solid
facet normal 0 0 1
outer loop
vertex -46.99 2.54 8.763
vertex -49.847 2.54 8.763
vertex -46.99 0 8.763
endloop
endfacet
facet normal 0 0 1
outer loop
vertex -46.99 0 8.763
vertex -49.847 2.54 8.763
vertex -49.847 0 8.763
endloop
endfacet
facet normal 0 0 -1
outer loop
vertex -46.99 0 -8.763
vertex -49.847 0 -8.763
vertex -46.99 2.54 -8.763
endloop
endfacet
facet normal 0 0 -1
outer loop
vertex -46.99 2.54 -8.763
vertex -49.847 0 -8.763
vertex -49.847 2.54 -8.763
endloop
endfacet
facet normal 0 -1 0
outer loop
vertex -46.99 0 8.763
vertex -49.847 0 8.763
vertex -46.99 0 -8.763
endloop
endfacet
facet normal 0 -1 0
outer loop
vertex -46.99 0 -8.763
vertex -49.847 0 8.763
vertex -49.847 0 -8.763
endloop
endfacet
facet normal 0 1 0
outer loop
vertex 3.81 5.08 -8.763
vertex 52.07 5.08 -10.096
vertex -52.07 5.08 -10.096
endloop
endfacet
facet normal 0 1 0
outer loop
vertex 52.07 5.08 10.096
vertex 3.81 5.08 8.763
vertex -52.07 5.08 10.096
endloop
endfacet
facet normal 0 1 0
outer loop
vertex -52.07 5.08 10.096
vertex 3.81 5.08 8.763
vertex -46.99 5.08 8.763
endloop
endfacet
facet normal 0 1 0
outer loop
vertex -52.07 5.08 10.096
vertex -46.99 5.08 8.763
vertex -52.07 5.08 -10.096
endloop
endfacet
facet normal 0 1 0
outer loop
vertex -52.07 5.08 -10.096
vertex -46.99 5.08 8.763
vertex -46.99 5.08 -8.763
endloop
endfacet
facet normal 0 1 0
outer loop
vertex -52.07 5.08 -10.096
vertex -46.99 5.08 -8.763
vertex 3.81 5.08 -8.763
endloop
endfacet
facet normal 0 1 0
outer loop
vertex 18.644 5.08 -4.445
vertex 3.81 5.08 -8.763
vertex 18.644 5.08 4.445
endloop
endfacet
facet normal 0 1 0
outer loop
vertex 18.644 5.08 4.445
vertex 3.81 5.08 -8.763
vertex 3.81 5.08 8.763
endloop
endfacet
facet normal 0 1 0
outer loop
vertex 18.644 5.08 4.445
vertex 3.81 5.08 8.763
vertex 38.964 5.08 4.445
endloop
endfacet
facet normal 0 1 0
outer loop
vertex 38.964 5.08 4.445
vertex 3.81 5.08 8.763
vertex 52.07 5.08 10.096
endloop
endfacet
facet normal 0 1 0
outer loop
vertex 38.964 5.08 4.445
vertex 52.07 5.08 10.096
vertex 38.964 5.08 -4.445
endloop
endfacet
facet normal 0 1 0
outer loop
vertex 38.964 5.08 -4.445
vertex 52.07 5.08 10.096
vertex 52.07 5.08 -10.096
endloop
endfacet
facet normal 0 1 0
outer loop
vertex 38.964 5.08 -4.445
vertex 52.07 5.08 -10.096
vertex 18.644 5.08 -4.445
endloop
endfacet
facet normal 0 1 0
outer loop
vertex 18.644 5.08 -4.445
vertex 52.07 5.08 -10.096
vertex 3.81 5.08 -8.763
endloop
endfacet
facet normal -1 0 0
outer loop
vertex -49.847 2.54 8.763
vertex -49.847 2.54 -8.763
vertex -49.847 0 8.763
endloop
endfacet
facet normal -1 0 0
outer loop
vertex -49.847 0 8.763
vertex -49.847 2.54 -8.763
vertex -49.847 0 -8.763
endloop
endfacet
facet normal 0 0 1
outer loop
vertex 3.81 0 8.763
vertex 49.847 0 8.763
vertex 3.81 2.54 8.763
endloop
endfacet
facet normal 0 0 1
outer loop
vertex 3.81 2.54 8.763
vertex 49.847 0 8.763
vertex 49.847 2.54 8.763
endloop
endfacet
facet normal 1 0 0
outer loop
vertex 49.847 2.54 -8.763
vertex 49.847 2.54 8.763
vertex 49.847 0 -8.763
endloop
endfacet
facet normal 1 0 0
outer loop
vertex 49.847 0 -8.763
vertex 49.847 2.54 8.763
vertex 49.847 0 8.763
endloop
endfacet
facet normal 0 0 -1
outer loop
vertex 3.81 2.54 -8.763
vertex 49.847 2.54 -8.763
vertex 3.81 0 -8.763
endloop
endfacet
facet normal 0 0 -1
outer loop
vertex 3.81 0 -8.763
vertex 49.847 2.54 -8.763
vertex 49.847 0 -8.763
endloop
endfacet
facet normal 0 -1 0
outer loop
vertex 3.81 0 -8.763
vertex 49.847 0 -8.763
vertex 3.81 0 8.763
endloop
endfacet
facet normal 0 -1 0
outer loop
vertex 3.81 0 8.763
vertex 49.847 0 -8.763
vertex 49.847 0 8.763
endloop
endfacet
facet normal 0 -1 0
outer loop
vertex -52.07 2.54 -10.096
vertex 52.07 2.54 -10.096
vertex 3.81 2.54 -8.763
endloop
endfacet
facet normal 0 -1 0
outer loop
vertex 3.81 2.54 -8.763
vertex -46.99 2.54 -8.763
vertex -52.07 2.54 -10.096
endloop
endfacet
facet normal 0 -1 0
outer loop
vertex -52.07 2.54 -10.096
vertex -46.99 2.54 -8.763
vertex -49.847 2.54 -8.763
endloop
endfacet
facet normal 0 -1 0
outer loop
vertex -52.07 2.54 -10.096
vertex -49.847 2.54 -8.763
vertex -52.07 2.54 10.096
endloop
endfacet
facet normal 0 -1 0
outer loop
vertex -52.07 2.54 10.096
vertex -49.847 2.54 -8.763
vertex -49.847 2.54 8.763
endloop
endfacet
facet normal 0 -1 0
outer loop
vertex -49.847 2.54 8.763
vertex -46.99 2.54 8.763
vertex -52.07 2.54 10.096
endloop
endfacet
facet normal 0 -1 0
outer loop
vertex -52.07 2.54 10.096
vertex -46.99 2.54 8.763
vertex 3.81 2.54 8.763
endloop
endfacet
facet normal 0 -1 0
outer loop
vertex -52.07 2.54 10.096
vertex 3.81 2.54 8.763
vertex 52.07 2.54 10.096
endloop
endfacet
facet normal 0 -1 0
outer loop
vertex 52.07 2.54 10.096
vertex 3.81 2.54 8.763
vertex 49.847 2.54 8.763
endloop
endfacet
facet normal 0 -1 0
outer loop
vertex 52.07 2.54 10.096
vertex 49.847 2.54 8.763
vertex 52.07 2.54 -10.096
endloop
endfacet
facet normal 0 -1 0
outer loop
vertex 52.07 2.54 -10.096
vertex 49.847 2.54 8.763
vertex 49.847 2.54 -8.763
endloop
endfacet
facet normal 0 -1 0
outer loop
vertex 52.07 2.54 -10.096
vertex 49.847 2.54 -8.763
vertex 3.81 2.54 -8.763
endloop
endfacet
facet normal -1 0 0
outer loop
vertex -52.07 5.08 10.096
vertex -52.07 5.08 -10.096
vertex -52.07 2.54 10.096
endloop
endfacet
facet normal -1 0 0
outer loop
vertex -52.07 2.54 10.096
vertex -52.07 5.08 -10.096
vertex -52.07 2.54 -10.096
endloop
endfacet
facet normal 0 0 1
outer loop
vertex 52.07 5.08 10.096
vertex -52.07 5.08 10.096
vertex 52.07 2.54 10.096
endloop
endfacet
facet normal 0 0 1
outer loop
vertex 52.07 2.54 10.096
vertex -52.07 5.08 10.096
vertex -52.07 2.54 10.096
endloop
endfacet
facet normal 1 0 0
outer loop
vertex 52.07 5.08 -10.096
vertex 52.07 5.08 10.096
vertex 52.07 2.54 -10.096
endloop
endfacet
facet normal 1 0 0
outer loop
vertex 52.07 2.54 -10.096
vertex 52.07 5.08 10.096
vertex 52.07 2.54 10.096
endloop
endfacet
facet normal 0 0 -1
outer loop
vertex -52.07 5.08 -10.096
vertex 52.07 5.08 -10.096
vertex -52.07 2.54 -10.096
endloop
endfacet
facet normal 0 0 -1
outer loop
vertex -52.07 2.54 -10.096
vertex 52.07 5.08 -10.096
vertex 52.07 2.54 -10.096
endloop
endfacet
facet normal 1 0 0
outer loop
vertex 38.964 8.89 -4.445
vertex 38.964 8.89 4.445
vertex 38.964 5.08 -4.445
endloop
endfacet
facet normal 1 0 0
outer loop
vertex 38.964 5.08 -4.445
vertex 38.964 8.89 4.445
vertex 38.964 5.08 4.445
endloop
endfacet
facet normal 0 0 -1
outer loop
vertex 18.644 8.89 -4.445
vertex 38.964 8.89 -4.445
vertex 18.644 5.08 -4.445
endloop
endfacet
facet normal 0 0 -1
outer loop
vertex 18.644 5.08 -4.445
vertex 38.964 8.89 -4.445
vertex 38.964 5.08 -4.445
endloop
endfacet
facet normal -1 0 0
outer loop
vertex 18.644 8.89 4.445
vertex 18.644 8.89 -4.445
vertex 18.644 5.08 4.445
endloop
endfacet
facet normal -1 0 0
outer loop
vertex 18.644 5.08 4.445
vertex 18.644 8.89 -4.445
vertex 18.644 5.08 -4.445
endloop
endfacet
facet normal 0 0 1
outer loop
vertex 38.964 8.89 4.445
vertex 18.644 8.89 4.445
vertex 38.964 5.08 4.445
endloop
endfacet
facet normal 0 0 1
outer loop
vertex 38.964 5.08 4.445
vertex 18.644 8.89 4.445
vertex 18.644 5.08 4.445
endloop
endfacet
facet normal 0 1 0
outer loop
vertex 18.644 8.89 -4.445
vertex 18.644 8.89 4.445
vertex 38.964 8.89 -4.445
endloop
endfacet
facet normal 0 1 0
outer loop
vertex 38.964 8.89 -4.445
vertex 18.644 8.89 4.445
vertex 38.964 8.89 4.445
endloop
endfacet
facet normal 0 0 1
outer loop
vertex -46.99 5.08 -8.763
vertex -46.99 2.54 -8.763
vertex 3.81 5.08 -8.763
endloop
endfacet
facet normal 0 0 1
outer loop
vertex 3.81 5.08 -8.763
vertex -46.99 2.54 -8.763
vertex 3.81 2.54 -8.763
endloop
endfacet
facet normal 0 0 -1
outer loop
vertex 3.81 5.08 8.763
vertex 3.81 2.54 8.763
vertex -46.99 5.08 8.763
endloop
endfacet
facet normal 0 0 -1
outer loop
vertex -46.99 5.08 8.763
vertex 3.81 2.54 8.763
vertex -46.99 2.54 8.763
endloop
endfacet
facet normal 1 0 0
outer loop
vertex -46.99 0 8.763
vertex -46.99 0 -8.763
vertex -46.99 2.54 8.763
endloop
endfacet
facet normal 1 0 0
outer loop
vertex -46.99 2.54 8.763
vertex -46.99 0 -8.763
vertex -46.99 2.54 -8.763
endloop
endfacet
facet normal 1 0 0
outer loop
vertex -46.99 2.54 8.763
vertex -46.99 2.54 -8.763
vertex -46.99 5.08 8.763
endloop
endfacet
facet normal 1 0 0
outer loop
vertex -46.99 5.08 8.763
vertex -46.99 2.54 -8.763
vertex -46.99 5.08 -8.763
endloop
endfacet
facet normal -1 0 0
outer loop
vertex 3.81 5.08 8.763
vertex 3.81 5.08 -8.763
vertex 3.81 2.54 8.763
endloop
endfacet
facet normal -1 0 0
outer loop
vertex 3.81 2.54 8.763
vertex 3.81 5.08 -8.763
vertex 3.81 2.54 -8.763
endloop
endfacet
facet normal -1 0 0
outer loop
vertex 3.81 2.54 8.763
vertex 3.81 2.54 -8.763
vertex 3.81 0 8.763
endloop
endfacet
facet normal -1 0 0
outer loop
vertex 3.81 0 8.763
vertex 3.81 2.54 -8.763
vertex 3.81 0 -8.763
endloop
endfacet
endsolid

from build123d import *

# Parameters (mm, degrees)
SKETCH1_W           = 99.695
SKETCH1_H           = 17.526
BOSS_EXTRUDE1_DEPTH = 2.54
SKETCH2_W           = 104.14
SKETCH2_H           = 20.193
BOSS_EXTRUDE2_DEPTH = 2.54
SKETCH4_W           = 20.32
SKETCH4_H           = 8.89
BOSS_EXTRUDE3_DEPTH = 3.81
SKETCH5_W           = 50.8
SKETCH5_H           = 17.526
CUT_EXTRUDE1_DEPTH  = 54.282554483


with BuildPart() as part:
    # Sketch1 → Boss-Extrude1 (new body)
    with BuildSketch(Plane(origin=(0, 0, 0), x_dir=(1, 0, 0), z_dir=(0, 1, 0))):
        Rectangle(SKETCH1_W, SKETCH1_H)
    extrude(amount=BOSS_EXTRUDE1_DEPTH)

    # Sketch2 → Boss-Extrude2 (add)
    with BuildSketch(Plane(origin=(0, 2.54, 0), x_dir=(1, 0, 0), z_dir=(0, 1, 0))):
        Rectangle(SKETCH2_W, SKETCH2_H)
    extrude(amount=BOSS_EXTRUDE2_DEPTH)

    # Sketch4 → Boss-Extrude3 (add)
    with BuildSketch(Plane(origin=(0, 5.08, 0), x_dir=(1, 0, 0), z_dir=(0, 1, 0))):
        with Locations((28.80358553, 0)):
            Rectangle(SKETCH4_W, SKETCH4_H)
    extrude(amount=BOSS_EXTRUDE3_DEPTH)

    # Sketch5 → Cut-Extrude1 (cut, through all)
    with BuildSketch(Plane(origin=(0, 5.08, 0), x_dir=(1, 0, 0), z_dir=(0, 1, 0))):
        with Locations((-21.59, 0)):
            Rectangle(SKETCH5_W, SKETCH5_H)
    extrude(amount=-CUT_EXTRUDE1_DEPTH, mode=Mode.SUBTRACT)


solid = part.part
